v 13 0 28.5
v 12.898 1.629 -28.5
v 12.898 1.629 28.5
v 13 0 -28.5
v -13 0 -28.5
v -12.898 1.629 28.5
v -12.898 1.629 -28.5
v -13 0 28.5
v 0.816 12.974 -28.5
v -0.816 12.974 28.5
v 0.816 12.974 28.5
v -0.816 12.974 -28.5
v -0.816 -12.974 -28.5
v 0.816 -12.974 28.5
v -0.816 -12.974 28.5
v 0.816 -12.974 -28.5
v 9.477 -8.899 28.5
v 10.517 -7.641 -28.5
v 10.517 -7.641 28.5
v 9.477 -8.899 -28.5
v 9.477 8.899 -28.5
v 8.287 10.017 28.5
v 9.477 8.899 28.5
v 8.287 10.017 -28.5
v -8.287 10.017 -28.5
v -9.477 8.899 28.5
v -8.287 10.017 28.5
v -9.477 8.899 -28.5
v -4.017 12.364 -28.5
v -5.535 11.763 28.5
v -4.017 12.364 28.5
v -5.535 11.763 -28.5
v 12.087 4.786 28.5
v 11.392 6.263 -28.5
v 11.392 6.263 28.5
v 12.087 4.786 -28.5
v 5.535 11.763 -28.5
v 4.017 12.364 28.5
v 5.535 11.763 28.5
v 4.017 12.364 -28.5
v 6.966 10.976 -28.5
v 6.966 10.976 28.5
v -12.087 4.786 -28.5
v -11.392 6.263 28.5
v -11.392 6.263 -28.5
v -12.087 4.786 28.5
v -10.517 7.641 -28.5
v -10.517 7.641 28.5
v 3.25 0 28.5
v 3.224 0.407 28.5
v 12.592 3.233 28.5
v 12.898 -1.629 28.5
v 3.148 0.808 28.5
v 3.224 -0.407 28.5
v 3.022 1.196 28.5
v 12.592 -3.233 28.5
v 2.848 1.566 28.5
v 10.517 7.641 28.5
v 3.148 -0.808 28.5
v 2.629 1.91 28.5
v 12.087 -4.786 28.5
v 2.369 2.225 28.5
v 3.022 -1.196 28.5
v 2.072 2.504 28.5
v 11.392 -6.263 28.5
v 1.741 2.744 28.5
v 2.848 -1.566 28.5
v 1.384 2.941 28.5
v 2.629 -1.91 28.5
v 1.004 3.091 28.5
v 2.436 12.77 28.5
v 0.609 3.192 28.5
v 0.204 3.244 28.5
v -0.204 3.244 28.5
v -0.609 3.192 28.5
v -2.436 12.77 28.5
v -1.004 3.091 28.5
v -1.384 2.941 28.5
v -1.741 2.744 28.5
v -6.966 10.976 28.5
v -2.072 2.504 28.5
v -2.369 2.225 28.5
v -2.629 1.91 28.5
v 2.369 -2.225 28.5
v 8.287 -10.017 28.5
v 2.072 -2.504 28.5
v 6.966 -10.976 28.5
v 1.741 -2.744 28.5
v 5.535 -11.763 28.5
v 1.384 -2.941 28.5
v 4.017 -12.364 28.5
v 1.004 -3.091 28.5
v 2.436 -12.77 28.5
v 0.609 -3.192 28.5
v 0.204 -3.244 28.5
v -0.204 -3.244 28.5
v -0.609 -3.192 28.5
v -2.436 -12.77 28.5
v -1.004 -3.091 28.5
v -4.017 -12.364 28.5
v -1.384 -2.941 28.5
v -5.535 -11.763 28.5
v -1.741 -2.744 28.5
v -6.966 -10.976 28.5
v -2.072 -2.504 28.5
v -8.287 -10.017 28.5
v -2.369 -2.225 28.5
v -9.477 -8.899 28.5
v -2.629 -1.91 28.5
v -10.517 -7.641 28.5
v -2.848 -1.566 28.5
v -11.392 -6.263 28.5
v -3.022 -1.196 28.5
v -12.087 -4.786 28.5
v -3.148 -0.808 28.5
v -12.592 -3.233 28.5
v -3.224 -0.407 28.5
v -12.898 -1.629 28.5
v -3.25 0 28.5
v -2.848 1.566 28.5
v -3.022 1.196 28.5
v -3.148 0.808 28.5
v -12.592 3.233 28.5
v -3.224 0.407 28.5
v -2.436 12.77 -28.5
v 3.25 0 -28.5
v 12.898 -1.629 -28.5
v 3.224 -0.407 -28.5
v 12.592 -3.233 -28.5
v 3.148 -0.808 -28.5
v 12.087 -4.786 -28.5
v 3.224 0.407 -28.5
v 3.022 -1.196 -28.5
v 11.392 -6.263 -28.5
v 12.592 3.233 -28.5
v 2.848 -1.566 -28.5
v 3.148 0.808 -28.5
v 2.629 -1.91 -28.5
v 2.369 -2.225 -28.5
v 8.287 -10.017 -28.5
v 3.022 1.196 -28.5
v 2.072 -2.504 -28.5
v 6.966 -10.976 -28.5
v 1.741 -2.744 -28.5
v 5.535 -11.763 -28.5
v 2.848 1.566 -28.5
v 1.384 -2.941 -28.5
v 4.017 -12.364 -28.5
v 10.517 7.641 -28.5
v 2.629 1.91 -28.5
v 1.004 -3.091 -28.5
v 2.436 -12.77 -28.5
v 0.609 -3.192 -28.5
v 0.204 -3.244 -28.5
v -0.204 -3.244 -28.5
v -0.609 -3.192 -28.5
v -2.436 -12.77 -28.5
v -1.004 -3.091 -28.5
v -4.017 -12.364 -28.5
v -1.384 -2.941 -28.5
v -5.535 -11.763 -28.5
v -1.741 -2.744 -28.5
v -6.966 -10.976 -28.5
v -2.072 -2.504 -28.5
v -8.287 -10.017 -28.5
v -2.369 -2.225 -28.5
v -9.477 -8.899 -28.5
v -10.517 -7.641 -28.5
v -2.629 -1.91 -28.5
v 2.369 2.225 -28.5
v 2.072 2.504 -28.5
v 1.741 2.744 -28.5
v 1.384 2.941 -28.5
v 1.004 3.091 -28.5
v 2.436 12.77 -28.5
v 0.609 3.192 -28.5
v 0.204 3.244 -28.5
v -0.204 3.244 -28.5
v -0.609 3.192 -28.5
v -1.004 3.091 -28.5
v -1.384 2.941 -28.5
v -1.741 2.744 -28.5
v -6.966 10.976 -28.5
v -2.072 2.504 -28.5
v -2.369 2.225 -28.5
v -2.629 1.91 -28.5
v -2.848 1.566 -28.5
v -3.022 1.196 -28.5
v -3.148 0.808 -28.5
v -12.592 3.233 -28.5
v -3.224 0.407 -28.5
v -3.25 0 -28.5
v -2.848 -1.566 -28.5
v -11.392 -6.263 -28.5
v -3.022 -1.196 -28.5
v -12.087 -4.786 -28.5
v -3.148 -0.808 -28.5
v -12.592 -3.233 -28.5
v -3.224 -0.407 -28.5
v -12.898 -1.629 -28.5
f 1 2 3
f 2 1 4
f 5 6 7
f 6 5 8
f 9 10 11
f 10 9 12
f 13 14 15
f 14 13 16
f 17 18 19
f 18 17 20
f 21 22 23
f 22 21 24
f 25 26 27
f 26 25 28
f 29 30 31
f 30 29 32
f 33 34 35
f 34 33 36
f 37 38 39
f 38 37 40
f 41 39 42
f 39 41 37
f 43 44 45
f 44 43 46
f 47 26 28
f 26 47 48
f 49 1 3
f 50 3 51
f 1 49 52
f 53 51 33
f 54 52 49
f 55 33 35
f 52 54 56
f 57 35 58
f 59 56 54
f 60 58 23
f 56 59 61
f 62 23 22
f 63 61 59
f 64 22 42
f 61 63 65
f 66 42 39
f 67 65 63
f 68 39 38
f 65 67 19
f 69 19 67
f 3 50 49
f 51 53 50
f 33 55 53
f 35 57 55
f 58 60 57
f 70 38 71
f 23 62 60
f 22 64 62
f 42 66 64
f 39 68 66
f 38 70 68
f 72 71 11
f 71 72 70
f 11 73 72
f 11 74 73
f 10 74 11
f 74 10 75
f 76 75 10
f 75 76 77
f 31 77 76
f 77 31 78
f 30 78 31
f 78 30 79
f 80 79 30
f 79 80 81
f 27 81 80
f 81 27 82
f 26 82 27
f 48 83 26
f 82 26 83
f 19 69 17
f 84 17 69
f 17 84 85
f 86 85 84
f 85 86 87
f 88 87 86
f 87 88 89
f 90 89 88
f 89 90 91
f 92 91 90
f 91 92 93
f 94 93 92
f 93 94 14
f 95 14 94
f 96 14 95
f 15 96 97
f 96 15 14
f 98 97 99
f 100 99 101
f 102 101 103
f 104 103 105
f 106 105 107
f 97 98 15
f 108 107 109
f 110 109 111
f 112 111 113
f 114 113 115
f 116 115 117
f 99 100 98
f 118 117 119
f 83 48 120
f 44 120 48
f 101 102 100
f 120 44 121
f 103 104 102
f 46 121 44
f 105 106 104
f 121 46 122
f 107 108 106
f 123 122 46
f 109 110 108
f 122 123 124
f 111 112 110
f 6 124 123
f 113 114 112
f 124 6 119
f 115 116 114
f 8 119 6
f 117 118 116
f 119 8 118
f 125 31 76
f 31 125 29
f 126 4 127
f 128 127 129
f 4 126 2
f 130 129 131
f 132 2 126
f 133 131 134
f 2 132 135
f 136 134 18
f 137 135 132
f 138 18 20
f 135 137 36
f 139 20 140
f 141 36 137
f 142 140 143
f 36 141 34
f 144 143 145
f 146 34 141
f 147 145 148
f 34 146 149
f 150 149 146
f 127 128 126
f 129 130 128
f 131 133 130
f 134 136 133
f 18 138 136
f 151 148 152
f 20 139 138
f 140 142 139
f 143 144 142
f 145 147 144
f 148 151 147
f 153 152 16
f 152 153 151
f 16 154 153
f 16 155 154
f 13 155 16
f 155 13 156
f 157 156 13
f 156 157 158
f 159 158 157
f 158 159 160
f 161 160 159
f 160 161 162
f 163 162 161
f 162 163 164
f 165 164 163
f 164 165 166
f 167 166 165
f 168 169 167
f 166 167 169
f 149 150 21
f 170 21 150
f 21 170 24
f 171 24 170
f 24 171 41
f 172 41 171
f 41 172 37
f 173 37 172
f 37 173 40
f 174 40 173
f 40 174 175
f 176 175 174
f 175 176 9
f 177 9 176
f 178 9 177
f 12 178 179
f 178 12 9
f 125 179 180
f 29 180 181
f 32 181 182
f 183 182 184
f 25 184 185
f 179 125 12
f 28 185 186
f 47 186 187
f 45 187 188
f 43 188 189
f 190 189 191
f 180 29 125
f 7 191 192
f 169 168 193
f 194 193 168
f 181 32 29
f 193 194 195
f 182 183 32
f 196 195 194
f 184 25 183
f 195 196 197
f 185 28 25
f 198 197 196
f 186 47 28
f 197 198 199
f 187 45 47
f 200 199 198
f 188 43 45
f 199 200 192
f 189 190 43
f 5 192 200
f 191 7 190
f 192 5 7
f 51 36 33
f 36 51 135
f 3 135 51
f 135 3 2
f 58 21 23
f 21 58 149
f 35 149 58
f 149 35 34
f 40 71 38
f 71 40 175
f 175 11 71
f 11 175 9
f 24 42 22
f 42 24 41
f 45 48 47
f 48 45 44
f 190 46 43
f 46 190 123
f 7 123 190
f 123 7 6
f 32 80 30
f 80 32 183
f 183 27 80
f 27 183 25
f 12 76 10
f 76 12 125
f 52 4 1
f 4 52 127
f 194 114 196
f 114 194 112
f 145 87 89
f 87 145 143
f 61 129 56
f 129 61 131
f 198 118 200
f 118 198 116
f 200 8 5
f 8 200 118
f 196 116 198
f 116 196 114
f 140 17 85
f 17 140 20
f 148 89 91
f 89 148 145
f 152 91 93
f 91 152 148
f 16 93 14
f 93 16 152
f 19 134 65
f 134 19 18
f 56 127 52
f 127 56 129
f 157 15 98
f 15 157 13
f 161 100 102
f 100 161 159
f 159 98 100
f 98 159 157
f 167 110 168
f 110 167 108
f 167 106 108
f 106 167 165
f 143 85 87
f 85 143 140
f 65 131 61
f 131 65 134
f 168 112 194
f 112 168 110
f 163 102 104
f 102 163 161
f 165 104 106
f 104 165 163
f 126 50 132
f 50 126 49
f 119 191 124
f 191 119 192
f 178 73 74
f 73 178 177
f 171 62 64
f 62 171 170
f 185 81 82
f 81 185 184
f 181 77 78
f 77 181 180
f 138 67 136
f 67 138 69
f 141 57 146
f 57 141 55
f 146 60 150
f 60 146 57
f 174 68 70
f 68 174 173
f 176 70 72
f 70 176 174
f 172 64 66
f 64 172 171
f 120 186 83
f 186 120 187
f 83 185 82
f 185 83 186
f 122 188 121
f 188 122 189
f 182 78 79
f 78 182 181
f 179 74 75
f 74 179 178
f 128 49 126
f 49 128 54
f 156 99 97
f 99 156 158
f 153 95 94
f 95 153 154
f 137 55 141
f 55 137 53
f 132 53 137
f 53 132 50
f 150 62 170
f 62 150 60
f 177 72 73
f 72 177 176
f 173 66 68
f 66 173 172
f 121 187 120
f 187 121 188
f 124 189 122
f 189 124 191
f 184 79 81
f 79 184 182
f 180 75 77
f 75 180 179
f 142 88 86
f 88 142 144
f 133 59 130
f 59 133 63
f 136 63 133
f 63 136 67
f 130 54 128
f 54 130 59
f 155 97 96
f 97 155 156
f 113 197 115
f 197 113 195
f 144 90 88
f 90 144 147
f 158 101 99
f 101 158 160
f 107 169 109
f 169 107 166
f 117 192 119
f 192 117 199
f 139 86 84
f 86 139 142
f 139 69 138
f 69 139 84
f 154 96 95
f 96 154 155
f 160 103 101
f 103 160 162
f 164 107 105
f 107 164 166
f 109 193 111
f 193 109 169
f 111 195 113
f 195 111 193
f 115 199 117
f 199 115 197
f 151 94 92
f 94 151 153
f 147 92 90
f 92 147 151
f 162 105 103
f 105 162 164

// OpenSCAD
$fn = 50;


difference() {
	union() {
		translate(v = [0, 0, -28.5000000000]) {
			cylinder(h = 57, r = 13.0000000000);
		}
	}
	union() {
		translate(v = [0, 0, -100.0000000000]) {
			cylinder(h = 200, r = 3.2500000000);
		}
	}
}
